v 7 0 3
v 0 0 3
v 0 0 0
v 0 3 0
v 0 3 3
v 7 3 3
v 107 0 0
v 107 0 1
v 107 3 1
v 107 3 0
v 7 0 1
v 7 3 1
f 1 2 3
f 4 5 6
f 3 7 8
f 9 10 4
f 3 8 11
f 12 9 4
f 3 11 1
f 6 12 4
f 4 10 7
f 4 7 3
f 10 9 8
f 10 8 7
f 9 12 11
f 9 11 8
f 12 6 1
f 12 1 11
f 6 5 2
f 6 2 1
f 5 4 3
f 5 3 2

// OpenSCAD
// Removable assembly tool. Print TWO. No rail stays inside the finished unit.
// Working bar:100 x1 x3 mm. Use the3 mm side to set the LED/PCB air gap.
// The supplied STL lies on that3 mm side for printing; turn it on edge to use.
print_orientation = true;
module spacer() {
    union() {
        translate([-8,0,0]) cube([100,1,3]);
        translate([-15,0,0]) cube([7,3,3]); // Handle outside the left LED edge.
    }
}
if (print_orientation) translate([15,3,0]) rotate([90,0,0]) spacer();
else spacer();
// Assembly: rail lower y=3.07 and13.23, centres3.57 and13.73.
// Set original z=6.3..9.3 in the enclosure stack, then pull left after soldering.
